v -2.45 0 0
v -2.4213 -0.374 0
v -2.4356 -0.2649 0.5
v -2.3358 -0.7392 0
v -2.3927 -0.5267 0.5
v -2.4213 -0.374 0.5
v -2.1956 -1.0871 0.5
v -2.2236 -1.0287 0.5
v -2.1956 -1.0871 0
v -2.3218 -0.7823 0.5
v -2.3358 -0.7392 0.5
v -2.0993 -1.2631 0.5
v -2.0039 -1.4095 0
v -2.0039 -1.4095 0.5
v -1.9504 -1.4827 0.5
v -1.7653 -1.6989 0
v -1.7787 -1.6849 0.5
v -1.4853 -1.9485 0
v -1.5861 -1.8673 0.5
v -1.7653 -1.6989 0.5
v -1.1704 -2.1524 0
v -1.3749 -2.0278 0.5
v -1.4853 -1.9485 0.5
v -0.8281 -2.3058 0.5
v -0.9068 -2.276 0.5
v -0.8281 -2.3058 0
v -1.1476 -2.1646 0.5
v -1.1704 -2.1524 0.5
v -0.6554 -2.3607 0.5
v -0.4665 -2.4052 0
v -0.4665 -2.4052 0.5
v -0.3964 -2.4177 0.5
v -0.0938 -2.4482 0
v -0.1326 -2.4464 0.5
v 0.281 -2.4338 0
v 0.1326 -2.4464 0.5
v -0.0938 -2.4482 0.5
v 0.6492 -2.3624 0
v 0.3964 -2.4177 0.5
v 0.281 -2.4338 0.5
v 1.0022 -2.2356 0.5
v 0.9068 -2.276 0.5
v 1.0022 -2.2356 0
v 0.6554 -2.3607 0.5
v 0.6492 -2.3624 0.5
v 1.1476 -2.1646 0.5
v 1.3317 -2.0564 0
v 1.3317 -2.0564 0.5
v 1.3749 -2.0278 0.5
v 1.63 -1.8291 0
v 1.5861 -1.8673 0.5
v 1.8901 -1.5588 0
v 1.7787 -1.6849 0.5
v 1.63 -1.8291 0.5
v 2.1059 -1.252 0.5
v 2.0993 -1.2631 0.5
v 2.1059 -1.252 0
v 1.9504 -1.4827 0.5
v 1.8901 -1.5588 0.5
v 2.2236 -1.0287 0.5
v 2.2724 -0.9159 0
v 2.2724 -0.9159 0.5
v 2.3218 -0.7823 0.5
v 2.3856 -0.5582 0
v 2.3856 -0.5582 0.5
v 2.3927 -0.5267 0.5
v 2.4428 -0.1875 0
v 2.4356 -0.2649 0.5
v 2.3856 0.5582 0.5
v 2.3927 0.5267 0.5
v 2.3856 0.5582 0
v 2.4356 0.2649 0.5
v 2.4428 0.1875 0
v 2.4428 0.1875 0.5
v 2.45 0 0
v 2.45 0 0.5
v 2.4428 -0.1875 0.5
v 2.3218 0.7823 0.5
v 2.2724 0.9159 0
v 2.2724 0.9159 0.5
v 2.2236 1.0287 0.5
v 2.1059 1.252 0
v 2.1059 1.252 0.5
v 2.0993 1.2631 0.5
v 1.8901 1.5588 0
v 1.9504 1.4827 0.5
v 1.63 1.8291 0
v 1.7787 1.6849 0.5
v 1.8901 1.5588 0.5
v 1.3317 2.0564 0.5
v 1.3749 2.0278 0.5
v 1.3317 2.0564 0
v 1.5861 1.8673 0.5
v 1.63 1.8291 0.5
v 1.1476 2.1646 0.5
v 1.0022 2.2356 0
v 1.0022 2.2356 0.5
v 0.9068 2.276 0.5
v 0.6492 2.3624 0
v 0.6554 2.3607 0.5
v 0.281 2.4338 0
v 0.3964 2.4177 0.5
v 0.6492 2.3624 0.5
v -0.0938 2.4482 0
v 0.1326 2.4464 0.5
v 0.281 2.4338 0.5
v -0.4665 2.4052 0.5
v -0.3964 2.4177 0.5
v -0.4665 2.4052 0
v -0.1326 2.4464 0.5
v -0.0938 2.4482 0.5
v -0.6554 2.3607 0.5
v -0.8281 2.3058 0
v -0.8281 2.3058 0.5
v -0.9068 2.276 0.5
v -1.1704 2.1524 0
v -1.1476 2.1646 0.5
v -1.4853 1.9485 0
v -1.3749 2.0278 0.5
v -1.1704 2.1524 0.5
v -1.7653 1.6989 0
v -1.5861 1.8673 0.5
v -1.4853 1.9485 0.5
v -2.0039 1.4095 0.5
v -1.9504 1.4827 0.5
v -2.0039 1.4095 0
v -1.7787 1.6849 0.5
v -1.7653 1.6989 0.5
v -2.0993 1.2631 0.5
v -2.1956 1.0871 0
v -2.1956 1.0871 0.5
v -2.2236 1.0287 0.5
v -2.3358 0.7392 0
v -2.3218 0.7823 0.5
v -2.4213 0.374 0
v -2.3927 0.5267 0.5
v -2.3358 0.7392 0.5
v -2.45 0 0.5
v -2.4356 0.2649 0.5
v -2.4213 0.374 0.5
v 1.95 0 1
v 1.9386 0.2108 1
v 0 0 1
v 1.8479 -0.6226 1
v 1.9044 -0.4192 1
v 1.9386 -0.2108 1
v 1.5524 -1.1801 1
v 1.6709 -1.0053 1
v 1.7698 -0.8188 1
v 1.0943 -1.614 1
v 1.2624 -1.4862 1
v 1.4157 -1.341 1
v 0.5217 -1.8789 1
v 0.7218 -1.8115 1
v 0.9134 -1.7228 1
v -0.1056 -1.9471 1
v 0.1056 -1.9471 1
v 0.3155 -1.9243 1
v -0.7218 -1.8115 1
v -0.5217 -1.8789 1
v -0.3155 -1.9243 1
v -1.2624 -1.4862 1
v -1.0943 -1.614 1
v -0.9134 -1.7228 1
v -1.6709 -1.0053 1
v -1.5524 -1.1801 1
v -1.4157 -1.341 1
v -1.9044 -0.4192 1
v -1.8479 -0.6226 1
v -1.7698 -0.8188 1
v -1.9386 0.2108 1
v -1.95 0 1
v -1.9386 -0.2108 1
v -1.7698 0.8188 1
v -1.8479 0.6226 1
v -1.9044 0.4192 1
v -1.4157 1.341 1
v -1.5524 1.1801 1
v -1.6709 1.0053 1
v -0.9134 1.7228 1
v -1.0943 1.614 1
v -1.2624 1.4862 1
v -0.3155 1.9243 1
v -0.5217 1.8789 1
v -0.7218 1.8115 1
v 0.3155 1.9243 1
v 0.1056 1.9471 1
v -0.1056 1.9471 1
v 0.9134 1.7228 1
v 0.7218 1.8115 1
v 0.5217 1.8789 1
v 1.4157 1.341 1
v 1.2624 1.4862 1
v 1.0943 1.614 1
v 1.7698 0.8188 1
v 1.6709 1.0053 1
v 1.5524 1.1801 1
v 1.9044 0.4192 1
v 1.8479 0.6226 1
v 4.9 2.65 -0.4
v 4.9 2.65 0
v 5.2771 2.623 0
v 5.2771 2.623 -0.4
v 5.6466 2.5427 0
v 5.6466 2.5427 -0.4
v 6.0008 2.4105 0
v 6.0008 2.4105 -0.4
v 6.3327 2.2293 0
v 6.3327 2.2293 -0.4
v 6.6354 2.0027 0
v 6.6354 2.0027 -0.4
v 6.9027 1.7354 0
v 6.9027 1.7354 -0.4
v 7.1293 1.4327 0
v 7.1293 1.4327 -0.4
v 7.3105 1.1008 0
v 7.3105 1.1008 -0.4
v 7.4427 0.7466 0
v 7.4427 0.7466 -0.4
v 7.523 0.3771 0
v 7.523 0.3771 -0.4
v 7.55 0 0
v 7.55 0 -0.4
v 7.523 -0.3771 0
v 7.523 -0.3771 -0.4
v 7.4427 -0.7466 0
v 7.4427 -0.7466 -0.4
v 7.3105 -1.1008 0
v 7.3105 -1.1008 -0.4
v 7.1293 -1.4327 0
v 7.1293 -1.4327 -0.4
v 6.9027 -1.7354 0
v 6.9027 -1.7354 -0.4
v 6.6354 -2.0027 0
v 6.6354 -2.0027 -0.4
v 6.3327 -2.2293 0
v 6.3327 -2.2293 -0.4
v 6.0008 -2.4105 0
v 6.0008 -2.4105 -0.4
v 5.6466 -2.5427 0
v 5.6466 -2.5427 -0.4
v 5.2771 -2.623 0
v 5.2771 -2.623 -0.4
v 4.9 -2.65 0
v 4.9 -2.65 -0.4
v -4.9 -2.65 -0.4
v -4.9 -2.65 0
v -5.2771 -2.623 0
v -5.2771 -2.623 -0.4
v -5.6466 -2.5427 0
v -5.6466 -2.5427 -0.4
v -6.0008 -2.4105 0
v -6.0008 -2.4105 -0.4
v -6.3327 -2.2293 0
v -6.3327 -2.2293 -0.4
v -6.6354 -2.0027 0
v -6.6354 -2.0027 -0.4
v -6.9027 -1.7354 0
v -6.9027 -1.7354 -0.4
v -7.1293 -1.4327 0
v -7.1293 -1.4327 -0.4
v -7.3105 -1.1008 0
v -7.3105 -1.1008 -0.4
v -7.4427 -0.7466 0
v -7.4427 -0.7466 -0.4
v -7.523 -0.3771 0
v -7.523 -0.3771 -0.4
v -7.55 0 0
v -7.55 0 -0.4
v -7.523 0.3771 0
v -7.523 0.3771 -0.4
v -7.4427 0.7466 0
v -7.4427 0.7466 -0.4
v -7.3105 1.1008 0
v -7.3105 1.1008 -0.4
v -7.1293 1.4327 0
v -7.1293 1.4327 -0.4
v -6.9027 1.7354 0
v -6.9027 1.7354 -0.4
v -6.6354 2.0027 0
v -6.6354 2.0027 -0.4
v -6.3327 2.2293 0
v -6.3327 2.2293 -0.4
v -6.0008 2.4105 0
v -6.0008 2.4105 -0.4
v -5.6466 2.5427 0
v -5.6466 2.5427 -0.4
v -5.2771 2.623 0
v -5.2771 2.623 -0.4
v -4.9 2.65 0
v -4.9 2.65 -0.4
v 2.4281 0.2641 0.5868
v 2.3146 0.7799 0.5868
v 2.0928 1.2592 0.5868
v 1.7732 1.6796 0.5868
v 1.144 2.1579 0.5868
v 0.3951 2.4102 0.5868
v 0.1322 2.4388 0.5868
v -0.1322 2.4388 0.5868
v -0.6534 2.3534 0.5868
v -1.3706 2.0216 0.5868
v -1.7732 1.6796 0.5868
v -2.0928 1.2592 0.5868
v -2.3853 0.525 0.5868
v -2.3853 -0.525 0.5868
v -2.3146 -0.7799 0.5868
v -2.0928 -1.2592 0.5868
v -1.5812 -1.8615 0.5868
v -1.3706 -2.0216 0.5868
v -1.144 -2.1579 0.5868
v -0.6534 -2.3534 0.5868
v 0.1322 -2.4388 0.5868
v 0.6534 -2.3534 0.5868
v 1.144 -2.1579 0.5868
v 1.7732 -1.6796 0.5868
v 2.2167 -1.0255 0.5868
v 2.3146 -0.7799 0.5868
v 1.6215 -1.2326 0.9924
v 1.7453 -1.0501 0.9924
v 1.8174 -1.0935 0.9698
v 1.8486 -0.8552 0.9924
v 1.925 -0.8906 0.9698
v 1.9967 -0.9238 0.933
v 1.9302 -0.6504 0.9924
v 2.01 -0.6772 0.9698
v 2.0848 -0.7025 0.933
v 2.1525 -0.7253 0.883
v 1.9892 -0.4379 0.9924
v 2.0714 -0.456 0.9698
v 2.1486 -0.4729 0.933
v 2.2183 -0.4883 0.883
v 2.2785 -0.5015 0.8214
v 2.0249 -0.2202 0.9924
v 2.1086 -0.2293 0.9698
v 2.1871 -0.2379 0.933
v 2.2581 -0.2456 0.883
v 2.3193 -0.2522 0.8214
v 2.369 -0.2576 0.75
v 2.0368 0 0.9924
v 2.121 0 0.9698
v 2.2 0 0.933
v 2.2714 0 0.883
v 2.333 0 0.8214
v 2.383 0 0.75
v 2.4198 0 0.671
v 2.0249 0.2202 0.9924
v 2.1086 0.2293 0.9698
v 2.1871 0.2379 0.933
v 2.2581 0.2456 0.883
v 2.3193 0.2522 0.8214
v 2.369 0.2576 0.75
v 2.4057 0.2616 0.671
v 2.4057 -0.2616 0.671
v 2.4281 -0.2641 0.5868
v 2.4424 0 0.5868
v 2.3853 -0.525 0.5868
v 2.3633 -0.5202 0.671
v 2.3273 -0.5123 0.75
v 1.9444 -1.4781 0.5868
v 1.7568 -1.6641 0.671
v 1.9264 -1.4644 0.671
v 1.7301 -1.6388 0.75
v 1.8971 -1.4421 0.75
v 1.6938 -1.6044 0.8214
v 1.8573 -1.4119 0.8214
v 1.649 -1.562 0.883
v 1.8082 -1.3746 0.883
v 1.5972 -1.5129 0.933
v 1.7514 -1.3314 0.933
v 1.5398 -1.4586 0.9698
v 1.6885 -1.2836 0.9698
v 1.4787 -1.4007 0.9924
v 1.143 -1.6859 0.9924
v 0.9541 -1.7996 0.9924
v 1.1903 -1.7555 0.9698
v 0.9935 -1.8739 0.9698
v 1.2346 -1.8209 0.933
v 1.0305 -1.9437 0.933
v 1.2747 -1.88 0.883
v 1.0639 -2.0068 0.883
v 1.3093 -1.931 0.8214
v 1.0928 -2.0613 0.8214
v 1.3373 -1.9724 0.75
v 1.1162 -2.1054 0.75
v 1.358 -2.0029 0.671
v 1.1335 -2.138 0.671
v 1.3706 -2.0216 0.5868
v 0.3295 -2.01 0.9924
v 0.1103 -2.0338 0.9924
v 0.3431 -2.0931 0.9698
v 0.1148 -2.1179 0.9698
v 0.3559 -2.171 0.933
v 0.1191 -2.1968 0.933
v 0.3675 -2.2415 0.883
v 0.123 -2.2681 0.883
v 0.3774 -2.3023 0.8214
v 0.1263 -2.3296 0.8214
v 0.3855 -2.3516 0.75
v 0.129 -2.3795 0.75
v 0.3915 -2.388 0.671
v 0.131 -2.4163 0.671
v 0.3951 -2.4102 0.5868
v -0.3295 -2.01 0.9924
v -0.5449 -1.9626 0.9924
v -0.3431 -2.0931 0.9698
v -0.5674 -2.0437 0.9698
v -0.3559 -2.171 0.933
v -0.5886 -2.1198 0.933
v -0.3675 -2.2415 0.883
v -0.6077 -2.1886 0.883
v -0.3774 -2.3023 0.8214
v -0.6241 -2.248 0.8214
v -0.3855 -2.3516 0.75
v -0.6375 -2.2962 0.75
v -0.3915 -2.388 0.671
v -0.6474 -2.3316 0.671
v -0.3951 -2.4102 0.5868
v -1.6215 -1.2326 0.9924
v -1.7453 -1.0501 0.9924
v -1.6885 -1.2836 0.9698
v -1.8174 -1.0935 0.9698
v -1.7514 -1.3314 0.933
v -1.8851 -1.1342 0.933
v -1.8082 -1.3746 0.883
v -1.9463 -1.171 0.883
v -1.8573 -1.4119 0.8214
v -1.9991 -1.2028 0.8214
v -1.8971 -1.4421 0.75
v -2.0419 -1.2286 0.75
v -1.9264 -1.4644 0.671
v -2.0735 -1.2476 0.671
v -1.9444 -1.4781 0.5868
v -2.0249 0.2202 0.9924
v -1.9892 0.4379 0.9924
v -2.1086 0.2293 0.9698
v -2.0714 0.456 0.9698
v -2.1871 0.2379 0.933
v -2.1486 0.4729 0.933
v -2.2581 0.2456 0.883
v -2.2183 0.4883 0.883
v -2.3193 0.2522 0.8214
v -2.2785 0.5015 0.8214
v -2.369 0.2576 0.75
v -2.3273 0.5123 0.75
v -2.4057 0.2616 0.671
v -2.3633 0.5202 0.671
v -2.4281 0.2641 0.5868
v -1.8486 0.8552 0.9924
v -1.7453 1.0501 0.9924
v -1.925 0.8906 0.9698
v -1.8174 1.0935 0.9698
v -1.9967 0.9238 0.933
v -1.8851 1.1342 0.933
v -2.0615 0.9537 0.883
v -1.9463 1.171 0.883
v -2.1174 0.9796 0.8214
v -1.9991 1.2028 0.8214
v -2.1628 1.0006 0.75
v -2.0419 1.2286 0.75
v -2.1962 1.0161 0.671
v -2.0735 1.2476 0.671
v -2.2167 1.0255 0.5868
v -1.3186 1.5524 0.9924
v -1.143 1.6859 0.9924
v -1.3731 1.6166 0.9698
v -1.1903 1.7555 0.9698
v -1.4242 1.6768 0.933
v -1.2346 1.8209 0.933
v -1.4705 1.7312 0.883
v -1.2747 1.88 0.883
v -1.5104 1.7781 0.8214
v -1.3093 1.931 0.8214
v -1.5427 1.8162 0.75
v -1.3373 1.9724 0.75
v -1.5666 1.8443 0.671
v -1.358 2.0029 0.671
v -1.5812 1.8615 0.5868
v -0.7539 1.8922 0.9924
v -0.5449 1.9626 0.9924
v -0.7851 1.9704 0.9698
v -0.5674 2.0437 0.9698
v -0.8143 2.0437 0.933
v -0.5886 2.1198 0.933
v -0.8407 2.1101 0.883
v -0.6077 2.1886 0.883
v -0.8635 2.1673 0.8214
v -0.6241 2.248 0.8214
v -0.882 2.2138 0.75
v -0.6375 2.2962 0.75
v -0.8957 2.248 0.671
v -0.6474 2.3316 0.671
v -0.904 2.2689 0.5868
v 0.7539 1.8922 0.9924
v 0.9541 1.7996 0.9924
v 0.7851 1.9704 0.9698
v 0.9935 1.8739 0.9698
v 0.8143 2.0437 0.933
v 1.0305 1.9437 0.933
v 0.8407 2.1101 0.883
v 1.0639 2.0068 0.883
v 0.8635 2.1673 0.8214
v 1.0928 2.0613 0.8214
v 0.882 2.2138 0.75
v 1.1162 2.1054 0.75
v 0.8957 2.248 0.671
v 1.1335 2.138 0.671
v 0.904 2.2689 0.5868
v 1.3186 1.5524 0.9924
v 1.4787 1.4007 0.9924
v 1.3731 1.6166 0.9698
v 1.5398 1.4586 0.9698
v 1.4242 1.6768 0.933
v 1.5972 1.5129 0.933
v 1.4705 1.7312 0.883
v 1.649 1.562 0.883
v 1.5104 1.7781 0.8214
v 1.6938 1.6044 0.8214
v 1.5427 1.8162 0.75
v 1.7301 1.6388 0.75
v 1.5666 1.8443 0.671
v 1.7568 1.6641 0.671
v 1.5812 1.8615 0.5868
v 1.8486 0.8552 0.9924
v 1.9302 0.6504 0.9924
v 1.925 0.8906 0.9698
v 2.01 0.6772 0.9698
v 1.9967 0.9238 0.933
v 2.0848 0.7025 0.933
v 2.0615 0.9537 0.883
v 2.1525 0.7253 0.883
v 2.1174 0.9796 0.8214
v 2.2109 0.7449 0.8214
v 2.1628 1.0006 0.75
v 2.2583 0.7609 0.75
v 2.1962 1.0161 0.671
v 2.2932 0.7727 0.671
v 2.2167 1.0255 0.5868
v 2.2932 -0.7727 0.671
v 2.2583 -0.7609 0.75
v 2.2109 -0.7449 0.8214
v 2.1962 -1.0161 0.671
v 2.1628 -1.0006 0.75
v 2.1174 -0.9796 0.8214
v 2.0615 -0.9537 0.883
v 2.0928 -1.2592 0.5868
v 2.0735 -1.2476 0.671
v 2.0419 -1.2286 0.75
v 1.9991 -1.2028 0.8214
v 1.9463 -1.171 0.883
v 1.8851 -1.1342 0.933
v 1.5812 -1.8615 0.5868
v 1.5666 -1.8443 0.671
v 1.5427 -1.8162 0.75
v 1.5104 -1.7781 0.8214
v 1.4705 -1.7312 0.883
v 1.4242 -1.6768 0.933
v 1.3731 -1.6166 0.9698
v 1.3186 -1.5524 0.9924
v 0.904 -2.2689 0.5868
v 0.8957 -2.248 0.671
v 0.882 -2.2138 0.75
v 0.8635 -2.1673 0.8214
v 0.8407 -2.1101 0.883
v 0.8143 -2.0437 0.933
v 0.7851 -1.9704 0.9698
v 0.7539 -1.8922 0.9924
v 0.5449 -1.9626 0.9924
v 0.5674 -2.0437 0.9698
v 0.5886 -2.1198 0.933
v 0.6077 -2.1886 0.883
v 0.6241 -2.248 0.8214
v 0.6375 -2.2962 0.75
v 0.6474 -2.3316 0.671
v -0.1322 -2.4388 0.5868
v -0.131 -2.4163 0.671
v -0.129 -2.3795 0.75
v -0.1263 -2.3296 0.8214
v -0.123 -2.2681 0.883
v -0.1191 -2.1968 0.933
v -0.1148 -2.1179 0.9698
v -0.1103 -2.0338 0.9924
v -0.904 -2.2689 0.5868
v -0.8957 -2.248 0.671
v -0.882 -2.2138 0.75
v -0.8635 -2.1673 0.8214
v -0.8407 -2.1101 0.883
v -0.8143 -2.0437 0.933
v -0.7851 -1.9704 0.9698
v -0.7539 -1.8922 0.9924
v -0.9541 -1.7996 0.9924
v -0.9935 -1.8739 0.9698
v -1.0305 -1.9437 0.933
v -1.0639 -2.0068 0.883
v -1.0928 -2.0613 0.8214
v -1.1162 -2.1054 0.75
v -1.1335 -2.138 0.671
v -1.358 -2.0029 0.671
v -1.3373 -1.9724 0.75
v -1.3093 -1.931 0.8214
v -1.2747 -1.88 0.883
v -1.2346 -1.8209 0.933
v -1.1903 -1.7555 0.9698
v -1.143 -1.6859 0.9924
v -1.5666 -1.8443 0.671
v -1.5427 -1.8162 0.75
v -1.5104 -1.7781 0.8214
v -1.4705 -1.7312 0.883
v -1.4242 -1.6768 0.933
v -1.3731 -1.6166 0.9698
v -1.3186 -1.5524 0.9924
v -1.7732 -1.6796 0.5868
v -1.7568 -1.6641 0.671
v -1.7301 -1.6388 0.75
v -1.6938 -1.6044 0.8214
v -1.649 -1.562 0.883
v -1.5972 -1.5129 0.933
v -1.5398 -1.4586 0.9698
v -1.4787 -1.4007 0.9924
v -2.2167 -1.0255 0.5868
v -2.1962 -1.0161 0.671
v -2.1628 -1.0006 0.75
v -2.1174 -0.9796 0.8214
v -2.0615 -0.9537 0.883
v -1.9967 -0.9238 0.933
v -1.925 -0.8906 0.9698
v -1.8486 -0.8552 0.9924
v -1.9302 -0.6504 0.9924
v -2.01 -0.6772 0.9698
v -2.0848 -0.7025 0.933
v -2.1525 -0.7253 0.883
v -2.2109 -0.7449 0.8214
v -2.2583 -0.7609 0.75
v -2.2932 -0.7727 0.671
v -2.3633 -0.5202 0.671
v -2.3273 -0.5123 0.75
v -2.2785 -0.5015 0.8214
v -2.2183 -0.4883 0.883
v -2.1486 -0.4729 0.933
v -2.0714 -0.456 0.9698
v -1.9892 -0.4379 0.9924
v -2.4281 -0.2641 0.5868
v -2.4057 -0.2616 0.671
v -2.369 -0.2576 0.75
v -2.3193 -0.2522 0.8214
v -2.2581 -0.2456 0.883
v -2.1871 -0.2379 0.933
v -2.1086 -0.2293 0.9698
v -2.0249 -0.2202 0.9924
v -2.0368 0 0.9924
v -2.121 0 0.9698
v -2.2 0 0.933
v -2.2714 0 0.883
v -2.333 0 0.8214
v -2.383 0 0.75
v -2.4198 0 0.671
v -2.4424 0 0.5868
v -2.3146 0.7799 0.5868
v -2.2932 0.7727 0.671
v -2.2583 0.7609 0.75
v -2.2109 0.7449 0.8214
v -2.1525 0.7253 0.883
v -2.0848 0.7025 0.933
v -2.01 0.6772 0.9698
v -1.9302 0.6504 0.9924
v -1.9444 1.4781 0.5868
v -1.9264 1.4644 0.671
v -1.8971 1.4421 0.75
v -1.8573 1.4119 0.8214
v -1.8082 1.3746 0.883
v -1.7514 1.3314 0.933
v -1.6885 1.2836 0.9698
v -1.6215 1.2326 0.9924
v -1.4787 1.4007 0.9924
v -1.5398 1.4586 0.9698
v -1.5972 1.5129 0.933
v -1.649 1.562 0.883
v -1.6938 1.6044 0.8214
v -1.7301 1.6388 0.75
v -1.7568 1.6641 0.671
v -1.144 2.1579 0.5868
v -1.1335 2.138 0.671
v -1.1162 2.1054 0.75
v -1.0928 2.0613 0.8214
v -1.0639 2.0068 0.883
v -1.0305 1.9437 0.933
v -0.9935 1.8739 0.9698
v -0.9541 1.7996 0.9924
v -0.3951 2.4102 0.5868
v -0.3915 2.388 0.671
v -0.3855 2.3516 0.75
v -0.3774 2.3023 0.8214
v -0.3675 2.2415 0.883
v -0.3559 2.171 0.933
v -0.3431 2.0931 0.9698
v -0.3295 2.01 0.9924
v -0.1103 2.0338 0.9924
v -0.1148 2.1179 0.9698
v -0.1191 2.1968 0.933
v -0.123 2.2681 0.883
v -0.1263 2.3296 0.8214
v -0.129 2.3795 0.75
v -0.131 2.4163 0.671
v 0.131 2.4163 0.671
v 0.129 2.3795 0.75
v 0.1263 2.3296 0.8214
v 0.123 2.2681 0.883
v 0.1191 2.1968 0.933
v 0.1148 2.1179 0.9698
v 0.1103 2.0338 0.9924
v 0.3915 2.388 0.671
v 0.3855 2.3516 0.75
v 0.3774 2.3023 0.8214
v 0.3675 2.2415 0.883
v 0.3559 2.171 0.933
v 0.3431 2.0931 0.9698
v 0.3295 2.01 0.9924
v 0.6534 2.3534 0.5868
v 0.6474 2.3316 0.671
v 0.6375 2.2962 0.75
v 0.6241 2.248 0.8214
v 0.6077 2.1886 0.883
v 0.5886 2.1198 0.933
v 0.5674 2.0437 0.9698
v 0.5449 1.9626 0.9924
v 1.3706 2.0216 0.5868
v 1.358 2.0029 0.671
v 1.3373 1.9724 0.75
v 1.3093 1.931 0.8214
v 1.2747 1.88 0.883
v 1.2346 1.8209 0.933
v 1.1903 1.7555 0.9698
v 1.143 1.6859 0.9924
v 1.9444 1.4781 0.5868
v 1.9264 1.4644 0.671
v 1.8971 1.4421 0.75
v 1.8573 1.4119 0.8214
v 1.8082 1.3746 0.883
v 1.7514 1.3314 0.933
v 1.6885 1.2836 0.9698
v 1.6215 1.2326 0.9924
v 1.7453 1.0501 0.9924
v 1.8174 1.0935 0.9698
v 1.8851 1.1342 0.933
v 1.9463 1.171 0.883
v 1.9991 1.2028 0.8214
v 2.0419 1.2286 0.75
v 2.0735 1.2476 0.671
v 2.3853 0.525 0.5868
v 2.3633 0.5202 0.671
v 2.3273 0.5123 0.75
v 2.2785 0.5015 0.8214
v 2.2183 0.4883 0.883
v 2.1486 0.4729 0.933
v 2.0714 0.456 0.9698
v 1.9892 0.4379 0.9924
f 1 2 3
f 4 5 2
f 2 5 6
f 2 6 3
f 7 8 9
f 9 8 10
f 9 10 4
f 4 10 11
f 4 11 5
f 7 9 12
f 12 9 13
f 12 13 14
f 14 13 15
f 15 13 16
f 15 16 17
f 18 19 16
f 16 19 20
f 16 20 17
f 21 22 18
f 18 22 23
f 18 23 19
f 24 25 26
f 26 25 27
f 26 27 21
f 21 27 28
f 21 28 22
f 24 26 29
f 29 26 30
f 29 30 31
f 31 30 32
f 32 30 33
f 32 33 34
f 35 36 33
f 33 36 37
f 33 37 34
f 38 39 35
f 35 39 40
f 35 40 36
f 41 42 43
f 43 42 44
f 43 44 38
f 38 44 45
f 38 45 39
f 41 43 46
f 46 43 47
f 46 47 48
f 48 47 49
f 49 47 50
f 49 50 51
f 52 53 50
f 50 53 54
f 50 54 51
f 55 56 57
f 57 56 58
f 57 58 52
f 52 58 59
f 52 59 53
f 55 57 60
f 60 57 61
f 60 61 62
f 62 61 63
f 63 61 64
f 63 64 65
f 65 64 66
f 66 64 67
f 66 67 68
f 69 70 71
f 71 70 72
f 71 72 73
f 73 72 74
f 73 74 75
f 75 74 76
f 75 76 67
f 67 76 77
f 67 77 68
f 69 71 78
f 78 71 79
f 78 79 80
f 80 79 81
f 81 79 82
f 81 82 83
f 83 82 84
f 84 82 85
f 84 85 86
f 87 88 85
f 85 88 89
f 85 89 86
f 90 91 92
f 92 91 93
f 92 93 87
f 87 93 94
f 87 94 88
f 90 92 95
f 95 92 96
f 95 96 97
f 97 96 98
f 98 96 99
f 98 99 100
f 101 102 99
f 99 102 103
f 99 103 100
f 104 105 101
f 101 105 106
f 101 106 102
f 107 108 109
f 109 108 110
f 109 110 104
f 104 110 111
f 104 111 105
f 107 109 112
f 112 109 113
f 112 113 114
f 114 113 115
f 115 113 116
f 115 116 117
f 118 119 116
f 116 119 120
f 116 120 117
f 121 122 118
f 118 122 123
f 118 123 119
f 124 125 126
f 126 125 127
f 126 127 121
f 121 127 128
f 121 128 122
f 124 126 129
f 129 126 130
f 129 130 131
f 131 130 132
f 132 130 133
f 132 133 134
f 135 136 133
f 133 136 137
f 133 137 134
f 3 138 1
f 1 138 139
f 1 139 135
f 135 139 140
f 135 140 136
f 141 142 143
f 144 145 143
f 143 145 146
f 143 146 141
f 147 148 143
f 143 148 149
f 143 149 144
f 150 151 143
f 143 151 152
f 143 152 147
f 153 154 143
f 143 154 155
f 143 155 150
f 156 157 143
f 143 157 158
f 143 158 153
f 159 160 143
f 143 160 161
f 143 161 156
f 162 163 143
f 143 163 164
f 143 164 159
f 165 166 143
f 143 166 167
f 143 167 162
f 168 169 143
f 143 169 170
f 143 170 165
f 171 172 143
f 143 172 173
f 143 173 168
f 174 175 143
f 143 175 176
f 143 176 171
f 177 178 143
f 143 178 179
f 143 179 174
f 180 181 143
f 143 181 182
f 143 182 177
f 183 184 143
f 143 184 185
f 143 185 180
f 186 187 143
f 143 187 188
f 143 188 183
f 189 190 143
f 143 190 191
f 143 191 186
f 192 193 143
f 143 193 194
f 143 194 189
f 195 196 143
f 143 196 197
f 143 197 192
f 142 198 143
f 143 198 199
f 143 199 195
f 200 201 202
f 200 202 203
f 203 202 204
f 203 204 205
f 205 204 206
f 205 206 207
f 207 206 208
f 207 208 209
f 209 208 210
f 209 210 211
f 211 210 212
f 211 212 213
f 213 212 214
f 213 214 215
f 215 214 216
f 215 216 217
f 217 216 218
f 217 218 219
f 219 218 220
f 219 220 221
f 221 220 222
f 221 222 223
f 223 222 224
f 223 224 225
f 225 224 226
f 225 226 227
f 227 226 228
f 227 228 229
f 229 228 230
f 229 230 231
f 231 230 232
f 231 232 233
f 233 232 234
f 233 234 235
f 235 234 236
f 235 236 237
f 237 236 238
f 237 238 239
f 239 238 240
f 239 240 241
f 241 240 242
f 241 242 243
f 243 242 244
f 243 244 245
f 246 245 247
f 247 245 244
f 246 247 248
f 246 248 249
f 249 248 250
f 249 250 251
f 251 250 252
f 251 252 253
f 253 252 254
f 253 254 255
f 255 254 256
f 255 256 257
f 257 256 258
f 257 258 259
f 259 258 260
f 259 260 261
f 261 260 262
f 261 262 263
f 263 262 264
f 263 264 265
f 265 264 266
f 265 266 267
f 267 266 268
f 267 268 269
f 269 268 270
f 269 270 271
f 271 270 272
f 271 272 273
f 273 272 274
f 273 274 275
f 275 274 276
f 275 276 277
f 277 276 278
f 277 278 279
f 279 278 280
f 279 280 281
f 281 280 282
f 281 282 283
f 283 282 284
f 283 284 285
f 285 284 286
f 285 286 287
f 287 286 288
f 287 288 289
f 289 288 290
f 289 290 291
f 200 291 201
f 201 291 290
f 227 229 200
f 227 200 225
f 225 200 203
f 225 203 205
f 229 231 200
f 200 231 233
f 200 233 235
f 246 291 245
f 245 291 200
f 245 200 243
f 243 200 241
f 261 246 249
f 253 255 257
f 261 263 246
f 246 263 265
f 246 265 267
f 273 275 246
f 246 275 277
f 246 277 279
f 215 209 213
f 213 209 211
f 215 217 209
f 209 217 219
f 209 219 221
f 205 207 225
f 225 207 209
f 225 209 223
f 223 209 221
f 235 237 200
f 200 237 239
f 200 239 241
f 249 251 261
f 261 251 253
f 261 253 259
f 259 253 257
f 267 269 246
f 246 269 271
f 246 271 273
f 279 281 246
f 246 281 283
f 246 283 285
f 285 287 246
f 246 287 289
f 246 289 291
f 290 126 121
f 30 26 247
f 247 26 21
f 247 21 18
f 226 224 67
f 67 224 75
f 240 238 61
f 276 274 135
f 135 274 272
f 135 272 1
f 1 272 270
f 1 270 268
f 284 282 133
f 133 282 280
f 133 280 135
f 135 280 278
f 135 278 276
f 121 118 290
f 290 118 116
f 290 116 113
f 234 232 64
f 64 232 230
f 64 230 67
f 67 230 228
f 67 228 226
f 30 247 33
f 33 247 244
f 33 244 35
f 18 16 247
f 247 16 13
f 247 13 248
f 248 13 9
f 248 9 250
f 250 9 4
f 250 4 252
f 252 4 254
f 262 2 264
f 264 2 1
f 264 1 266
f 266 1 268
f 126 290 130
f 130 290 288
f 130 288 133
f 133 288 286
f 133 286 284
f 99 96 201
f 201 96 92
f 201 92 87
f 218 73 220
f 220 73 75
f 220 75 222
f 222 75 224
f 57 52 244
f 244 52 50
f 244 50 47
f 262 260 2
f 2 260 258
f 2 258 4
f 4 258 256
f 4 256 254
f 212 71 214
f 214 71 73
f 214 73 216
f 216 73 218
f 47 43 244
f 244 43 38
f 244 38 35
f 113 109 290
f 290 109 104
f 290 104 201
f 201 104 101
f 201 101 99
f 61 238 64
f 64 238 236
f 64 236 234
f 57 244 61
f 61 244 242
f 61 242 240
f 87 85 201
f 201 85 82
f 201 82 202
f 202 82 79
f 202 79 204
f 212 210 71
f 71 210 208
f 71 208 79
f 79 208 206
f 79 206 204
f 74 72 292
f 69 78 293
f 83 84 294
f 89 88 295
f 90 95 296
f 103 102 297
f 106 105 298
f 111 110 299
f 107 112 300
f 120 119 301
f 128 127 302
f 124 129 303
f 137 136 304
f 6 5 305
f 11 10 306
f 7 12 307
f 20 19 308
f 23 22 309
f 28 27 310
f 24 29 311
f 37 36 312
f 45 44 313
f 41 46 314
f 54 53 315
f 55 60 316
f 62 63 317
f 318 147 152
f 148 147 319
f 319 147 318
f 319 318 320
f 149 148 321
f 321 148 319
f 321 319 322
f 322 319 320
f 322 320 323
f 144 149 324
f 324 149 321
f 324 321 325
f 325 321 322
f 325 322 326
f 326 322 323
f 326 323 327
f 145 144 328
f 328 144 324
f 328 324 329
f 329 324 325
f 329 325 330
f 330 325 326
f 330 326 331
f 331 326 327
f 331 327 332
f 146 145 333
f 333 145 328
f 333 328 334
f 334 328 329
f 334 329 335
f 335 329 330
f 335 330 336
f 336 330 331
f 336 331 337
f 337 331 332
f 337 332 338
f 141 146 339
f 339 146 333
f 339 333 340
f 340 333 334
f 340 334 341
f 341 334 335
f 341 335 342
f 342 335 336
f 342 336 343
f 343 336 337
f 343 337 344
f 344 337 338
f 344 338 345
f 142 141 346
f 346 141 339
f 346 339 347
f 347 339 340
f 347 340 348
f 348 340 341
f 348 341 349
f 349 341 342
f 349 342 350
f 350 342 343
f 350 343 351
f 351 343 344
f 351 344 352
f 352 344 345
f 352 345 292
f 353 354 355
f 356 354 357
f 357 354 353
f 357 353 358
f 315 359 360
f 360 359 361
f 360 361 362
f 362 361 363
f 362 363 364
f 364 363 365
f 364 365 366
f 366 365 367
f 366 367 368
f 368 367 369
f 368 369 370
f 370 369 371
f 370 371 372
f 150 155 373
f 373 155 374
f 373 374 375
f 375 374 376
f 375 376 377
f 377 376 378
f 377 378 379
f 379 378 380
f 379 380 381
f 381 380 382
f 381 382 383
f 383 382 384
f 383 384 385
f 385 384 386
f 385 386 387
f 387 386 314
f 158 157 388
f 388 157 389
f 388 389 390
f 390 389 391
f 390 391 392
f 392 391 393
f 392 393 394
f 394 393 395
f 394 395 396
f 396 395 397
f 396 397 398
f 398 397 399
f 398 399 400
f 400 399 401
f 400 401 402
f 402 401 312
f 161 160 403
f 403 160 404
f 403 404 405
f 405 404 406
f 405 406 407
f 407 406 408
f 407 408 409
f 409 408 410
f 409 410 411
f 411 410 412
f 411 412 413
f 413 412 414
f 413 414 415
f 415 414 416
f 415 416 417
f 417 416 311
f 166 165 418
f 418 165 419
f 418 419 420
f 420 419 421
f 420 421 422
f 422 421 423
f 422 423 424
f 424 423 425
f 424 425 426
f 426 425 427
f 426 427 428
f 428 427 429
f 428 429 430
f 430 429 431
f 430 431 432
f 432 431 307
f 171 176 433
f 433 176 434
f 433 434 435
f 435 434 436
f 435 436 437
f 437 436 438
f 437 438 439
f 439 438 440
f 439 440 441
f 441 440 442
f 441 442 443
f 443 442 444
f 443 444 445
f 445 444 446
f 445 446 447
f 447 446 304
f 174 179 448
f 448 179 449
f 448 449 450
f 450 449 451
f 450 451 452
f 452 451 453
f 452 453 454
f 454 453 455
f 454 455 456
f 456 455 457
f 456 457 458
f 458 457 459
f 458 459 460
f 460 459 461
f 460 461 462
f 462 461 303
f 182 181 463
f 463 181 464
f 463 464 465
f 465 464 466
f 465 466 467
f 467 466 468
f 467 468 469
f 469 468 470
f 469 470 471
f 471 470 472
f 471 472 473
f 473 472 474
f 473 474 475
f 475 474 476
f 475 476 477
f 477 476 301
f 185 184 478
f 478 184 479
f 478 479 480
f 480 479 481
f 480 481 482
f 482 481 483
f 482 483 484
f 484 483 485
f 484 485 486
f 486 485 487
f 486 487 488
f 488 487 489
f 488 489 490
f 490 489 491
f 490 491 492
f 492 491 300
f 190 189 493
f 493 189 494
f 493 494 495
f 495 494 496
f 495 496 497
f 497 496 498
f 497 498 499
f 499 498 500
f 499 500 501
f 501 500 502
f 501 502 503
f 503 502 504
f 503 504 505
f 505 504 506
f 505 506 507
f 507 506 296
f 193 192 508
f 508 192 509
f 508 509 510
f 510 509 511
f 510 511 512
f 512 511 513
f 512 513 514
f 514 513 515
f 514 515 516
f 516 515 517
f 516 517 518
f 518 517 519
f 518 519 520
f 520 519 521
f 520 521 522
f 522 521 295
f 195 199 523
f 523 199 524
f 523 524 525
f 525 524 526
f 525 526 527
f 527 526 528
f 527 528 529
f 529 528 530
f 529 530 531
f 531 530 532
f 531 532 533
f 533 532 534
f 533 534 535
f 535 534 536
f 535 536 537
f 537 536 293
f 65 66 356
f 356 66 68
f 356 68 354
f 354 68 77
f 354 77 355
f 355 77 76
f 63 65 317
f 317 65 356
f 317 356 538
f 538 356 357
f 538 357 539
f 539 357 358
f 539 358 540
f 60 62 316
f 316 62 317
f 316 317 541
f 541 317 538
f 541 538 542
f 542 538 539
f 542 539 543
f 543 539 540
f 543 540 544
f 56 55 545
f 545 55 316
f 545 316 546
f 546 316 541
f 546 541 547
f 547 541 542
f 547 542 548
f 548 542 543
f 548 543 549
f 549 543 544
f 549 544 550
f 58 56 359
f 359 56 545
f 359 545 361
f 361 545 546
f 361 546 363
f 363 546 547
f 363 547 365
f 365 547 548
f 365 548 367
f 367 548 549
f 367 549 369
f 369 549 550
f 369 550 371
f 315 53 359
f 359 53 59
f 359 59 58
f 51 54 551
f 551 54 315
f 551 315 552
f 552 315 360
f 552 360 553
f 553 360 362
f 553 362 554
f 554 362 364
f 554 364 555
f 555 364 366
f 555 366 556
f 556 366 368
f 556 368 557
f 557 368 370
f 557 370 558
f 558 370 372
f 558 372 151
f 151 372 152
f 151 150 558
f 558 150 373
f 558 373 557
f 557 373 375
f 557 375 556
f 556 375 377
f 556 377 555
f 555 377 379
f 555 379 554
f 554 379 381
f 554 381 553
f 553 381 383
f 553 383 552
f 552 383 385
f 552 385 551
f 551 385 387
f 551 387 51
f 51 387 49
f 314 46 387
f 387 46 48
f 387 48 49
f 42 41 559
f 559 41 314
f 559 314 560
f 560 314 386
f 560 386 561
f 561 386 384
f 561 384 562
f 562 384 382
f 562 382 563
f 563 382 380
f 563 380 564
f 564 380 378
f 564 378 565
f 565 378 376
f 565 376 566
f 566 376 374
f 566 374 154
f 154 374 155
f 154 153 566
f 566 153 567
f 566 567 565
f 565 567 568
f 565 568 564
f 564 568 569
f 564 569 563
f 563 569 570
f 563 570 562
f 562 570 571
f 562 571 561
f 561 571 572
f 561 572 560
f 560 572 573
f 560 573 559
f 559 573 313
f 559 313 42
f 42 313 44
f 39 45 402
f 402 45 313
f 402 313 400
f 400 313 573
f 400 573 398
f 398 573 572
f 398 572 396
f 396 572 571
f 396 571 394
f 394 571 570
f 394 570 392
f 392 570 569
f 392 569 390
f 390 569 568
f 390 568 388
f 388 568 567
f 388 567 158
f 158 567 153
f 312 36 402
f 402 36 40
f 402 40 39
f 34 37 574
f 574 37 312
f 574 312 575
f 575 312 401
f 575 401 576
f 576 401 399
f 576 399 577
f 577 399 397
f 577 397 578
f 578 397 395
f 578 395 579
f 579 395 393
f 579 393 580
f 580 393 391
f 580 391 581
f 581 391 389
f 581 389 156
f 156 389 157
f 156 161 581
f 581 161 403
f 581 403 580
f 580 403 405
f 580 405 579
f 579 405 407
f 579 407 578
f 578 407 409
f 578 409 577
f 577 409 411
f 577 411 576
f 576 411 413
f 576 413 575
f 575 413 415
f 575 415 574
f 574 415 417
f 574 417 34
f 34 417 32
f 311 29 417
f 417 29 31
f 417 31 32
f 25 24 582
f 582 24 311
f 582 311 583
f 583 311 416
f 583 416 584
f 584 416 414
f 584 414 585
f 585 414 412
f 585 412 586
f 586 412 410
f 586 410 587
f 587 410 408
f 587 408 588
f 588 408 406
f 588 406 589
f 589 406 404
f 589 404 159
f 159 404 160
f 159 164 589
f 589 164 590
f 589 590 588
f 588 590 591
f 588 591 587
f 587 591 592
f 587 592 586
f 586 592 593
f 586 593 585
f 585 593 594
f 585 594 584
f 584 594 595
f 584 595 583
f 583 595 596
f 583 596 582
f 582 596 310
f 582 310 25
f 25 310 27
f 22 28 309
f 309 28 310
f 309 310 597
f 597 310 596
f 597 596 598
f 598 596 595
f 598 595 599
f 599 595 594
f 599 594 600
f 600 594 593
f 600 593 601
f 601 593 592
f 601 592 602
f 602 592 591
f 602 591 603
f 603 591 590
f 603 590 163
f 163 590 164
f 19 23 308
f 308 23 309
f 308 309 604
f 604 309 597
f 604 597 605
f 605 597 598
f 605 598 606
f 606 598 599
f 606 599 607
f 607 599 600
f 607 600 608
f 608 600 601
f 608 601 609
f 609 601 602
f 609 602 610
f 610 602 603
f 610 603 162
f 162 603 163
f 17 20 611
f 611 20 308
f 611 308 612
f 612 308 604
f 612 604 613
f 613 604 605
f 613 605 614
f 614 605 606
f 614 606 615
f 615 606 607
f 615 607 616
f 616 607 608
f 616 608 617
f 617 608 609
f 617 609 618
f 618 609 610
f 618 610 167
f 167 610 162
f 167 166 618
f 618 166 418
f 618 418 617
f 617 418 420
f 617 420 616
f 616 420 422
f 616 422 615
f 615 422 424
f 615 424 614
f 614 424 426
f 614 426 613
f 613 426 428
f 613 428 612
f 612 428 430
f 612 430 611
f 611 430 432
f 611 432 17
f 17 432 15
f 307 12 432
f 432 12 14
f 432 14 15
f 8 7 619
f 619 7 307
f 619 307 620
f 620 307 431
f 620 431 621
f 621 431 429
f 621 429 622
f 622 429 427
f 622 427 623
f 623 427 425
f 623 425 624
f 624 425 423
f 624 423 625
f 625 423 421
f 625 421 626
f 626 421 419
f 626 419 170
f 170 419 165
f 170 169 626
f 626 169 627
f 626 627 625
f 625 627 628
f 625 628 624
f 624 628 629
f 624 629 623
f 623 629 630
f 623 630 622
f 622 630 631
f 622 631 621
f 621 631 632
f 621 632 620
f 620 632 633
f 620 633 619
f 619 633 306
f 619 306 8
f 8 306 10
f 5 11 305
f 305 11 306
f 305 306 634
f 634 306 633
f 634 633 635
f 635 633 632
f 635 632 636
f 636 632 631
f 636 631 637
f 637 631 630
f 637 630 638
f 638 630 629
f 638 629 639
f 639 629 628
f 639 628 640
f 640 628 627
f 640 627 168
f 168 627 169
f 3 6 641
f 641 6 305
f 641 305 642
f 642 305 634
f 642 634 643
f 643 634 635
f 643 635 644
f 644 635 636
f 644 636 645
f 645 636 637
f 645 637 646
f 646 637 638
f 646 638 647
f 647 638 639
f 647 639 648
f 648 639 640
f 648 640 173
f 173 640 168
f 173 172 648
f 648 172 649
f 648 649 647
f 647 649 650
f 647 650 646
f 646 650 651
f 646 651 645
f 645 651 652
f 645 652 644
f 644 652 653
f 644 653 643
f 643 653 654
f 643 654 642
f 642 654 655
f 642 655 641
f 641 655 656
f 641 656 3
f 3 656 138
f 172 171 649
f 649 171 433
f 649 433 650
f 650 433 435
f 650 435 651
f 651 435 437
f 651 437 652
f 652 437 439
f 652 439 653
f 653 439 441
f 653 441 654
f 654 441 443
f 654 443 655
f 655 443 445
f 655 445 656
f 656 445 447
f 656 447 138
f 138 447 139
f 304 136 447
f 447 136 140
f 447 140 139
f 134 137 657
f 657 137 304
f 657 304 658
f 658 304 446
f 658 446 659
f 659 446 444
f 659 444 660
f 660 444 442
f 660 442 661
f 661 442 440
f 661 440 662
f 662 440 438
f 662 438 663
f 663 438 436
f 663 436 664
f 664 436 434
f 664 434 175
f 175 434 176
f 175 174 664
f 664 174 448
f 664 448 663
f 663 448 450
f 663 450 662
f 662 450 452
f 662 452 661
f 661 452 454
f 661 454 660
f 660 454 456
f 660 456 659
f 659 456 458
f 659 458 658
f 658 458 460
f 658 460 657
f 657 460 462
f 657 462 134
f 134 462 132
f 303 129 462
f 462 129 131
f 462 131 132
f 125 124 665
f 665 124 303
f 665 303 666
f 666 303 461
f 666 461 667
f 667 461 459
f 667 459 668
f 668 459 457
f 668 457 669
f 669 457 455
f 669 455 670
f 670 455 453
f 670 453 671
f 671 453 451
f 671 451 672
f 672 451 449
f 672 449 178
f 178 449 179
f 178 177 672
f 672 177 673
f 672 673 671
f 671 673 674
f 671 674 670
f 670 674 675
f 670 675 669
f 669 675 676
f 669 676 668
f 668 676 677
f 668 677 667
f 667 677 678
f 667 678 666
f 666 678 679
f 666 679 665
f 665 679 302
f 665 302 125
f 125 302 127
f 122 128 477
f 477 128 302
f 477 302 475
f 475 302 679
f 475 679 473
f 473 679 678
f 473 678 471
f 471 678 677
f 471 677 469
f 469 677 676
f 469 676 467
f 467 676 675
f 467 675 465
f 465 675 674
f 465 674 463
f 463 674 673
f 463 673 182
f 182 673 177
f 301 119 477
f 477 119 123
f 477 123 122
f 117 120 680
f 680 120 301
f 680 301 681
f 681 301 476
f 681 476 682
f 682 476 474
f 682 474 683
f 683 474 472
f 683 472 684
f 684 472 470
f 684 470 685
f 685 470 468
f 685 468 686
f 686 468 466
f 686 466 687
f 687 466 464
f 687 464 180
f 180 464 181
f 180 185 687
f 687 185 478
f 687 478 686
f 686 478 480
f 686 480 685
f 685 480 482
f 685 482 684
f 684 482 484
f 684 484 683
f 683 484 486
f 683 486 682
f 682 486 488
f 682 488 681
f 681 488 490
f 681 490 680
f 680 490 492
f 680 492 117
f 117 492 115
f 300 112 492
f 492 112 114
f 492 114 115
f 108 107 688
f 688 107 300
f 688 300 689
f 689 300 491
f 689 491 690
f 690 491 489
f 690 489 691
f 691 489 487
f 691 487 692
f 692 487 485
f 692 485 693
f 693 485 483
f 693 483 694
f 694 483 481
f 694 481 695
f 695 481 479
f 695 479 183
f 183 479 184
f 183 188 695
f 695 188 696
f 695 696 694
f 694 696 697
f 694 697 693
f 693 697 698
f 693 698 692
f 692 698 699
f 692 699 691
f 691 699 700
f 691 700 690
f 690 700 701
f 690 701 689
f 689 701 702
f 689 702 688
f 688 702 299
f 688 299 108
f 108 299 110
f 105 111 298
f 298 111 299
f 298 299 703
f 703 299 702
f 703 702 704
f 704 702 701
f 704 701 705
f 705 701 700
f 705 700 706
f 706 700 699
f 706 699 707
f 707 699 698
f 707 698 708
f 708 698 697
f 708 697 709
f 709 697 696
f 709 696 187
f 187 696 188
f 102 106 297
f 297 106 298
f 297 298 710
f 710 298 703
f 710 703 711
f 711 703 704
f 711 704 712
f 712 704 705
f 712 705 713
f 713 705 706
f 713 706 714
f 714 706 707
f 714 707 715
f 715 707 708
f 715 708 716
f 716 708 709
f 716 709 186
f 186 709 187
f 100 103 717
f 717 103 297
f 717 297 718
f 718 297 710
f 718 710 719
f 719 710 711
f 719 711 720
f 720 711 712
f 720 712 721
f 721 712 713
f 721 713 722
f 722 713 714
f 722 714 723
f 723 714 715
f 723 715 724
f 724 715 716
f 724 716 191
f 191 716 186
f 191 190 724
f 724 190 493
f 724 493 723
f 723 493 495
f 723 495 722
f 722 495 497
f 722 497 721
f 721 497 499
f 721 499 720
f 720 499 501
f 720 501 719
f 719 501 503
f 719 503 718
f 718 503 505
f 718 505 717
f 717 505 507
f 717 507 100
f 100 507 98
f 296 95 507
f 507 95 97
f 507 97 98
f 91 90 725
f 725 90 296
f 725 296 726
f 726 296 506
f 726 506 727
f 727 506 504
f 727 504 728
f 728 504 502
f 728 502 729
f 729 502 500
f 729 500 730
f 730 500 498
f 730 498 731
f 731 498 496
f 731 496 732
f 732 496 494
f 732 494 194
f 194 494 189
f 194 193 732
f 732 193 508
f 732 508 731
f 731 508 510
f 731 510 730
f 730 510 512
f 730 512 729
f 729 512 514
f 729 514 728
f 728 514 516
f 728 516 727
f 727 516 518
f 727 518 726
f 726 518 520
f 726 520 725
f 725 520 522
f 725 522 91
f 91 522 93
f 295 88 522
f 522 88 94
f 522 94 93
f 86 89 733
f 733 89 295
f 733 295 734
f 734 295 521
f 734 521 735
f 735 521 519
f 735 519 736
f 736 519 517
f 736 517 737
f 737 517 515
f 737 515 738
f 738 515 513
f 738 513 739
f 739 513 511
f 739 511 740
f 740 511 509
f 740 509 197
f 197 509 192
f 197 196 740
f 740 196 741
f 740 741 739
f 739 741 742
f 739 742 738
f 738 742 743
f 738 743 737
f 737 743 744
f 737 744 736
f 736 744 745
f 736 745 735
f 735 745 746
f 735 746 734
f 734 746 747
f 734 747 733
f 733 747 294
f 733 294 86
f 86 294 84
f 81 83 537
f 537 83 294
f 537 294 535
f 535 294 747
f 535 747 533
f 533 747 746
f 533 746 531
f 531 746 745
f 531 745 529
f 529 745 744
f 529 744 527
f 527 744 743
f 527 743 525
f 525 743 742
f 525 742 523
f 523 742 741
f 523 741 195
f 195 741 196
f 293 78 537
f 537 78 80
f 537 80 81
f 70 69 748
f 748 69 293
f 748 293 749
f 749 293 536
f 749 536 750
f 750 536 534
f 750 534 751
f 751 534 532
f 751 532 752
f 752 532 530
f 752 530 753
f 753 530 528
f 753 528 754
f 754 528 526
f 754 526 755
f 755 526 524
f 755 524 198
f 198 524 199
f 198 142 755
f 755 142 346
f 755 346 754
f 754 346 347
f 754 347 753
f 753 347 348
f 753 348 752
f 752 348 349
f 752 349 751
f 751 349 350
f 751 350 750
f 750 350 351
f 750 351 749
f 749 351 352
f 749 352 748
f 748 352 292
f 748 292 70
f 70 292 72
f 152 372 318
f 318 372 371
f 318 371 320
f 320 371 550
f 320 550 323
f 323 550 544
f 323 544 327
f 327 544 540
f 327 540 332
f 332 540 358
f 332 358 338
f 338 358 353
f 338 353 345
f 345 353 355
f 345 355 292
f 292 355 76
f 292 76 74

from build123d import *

# Parameters (mm, degrees)
SKIZZE1_R                       = 2.45
AUFSATZ_LINEAR_AUSTRAGEN1_DEPTH = 1
AUFSATZ_LINEAR_AUSTRAGEN2_DEPTH = 0.4
VERRUNDUNG1_R                   = 0.5


with BuildPart() as part:
    # Skizze1 → Aufsatz-Linear austragen1 (new body)
    with BuildSketch(Plane.XY):
        Circle(SKIZZE1_R)
    extrude(amount=AUFSATZ_LINEAR_AUSTRAGEN1_DEPTH)

    # Skizze2 → Aufsatz-Linear austragen2 (add)
    with BuildSketch(Plane(origin=(0, 0, 0), x_dir=(-1, 0, 0), z_dir=(0, 0, -1))):
        with BuildLine():
            Line((-4.9, 2.65), (4.9, 2.65))
            ThreePointArc((4.9, 2.65), (7.55, 0), (4.9, -2.65))
            Line((4.9, -2.65), (-4.9, -2.65))
            ThreePointArc((-4.9, -2.65), (-7.55, 0), (-4.9, 2.65))
        make_face()
    extrude(amount=AUFSATZ_LINEAR_AUSTRAGEN2_DEPTH)

    # Verrundung1
    verrundung1_edges = [part.edges().sort_by_distance(p)[0] for p in [
        (-2.45, 0, 1),
    ]]
    fillet(verrundung1_edges, radius=VERRUNDUNG1_R)


solid = part.part
